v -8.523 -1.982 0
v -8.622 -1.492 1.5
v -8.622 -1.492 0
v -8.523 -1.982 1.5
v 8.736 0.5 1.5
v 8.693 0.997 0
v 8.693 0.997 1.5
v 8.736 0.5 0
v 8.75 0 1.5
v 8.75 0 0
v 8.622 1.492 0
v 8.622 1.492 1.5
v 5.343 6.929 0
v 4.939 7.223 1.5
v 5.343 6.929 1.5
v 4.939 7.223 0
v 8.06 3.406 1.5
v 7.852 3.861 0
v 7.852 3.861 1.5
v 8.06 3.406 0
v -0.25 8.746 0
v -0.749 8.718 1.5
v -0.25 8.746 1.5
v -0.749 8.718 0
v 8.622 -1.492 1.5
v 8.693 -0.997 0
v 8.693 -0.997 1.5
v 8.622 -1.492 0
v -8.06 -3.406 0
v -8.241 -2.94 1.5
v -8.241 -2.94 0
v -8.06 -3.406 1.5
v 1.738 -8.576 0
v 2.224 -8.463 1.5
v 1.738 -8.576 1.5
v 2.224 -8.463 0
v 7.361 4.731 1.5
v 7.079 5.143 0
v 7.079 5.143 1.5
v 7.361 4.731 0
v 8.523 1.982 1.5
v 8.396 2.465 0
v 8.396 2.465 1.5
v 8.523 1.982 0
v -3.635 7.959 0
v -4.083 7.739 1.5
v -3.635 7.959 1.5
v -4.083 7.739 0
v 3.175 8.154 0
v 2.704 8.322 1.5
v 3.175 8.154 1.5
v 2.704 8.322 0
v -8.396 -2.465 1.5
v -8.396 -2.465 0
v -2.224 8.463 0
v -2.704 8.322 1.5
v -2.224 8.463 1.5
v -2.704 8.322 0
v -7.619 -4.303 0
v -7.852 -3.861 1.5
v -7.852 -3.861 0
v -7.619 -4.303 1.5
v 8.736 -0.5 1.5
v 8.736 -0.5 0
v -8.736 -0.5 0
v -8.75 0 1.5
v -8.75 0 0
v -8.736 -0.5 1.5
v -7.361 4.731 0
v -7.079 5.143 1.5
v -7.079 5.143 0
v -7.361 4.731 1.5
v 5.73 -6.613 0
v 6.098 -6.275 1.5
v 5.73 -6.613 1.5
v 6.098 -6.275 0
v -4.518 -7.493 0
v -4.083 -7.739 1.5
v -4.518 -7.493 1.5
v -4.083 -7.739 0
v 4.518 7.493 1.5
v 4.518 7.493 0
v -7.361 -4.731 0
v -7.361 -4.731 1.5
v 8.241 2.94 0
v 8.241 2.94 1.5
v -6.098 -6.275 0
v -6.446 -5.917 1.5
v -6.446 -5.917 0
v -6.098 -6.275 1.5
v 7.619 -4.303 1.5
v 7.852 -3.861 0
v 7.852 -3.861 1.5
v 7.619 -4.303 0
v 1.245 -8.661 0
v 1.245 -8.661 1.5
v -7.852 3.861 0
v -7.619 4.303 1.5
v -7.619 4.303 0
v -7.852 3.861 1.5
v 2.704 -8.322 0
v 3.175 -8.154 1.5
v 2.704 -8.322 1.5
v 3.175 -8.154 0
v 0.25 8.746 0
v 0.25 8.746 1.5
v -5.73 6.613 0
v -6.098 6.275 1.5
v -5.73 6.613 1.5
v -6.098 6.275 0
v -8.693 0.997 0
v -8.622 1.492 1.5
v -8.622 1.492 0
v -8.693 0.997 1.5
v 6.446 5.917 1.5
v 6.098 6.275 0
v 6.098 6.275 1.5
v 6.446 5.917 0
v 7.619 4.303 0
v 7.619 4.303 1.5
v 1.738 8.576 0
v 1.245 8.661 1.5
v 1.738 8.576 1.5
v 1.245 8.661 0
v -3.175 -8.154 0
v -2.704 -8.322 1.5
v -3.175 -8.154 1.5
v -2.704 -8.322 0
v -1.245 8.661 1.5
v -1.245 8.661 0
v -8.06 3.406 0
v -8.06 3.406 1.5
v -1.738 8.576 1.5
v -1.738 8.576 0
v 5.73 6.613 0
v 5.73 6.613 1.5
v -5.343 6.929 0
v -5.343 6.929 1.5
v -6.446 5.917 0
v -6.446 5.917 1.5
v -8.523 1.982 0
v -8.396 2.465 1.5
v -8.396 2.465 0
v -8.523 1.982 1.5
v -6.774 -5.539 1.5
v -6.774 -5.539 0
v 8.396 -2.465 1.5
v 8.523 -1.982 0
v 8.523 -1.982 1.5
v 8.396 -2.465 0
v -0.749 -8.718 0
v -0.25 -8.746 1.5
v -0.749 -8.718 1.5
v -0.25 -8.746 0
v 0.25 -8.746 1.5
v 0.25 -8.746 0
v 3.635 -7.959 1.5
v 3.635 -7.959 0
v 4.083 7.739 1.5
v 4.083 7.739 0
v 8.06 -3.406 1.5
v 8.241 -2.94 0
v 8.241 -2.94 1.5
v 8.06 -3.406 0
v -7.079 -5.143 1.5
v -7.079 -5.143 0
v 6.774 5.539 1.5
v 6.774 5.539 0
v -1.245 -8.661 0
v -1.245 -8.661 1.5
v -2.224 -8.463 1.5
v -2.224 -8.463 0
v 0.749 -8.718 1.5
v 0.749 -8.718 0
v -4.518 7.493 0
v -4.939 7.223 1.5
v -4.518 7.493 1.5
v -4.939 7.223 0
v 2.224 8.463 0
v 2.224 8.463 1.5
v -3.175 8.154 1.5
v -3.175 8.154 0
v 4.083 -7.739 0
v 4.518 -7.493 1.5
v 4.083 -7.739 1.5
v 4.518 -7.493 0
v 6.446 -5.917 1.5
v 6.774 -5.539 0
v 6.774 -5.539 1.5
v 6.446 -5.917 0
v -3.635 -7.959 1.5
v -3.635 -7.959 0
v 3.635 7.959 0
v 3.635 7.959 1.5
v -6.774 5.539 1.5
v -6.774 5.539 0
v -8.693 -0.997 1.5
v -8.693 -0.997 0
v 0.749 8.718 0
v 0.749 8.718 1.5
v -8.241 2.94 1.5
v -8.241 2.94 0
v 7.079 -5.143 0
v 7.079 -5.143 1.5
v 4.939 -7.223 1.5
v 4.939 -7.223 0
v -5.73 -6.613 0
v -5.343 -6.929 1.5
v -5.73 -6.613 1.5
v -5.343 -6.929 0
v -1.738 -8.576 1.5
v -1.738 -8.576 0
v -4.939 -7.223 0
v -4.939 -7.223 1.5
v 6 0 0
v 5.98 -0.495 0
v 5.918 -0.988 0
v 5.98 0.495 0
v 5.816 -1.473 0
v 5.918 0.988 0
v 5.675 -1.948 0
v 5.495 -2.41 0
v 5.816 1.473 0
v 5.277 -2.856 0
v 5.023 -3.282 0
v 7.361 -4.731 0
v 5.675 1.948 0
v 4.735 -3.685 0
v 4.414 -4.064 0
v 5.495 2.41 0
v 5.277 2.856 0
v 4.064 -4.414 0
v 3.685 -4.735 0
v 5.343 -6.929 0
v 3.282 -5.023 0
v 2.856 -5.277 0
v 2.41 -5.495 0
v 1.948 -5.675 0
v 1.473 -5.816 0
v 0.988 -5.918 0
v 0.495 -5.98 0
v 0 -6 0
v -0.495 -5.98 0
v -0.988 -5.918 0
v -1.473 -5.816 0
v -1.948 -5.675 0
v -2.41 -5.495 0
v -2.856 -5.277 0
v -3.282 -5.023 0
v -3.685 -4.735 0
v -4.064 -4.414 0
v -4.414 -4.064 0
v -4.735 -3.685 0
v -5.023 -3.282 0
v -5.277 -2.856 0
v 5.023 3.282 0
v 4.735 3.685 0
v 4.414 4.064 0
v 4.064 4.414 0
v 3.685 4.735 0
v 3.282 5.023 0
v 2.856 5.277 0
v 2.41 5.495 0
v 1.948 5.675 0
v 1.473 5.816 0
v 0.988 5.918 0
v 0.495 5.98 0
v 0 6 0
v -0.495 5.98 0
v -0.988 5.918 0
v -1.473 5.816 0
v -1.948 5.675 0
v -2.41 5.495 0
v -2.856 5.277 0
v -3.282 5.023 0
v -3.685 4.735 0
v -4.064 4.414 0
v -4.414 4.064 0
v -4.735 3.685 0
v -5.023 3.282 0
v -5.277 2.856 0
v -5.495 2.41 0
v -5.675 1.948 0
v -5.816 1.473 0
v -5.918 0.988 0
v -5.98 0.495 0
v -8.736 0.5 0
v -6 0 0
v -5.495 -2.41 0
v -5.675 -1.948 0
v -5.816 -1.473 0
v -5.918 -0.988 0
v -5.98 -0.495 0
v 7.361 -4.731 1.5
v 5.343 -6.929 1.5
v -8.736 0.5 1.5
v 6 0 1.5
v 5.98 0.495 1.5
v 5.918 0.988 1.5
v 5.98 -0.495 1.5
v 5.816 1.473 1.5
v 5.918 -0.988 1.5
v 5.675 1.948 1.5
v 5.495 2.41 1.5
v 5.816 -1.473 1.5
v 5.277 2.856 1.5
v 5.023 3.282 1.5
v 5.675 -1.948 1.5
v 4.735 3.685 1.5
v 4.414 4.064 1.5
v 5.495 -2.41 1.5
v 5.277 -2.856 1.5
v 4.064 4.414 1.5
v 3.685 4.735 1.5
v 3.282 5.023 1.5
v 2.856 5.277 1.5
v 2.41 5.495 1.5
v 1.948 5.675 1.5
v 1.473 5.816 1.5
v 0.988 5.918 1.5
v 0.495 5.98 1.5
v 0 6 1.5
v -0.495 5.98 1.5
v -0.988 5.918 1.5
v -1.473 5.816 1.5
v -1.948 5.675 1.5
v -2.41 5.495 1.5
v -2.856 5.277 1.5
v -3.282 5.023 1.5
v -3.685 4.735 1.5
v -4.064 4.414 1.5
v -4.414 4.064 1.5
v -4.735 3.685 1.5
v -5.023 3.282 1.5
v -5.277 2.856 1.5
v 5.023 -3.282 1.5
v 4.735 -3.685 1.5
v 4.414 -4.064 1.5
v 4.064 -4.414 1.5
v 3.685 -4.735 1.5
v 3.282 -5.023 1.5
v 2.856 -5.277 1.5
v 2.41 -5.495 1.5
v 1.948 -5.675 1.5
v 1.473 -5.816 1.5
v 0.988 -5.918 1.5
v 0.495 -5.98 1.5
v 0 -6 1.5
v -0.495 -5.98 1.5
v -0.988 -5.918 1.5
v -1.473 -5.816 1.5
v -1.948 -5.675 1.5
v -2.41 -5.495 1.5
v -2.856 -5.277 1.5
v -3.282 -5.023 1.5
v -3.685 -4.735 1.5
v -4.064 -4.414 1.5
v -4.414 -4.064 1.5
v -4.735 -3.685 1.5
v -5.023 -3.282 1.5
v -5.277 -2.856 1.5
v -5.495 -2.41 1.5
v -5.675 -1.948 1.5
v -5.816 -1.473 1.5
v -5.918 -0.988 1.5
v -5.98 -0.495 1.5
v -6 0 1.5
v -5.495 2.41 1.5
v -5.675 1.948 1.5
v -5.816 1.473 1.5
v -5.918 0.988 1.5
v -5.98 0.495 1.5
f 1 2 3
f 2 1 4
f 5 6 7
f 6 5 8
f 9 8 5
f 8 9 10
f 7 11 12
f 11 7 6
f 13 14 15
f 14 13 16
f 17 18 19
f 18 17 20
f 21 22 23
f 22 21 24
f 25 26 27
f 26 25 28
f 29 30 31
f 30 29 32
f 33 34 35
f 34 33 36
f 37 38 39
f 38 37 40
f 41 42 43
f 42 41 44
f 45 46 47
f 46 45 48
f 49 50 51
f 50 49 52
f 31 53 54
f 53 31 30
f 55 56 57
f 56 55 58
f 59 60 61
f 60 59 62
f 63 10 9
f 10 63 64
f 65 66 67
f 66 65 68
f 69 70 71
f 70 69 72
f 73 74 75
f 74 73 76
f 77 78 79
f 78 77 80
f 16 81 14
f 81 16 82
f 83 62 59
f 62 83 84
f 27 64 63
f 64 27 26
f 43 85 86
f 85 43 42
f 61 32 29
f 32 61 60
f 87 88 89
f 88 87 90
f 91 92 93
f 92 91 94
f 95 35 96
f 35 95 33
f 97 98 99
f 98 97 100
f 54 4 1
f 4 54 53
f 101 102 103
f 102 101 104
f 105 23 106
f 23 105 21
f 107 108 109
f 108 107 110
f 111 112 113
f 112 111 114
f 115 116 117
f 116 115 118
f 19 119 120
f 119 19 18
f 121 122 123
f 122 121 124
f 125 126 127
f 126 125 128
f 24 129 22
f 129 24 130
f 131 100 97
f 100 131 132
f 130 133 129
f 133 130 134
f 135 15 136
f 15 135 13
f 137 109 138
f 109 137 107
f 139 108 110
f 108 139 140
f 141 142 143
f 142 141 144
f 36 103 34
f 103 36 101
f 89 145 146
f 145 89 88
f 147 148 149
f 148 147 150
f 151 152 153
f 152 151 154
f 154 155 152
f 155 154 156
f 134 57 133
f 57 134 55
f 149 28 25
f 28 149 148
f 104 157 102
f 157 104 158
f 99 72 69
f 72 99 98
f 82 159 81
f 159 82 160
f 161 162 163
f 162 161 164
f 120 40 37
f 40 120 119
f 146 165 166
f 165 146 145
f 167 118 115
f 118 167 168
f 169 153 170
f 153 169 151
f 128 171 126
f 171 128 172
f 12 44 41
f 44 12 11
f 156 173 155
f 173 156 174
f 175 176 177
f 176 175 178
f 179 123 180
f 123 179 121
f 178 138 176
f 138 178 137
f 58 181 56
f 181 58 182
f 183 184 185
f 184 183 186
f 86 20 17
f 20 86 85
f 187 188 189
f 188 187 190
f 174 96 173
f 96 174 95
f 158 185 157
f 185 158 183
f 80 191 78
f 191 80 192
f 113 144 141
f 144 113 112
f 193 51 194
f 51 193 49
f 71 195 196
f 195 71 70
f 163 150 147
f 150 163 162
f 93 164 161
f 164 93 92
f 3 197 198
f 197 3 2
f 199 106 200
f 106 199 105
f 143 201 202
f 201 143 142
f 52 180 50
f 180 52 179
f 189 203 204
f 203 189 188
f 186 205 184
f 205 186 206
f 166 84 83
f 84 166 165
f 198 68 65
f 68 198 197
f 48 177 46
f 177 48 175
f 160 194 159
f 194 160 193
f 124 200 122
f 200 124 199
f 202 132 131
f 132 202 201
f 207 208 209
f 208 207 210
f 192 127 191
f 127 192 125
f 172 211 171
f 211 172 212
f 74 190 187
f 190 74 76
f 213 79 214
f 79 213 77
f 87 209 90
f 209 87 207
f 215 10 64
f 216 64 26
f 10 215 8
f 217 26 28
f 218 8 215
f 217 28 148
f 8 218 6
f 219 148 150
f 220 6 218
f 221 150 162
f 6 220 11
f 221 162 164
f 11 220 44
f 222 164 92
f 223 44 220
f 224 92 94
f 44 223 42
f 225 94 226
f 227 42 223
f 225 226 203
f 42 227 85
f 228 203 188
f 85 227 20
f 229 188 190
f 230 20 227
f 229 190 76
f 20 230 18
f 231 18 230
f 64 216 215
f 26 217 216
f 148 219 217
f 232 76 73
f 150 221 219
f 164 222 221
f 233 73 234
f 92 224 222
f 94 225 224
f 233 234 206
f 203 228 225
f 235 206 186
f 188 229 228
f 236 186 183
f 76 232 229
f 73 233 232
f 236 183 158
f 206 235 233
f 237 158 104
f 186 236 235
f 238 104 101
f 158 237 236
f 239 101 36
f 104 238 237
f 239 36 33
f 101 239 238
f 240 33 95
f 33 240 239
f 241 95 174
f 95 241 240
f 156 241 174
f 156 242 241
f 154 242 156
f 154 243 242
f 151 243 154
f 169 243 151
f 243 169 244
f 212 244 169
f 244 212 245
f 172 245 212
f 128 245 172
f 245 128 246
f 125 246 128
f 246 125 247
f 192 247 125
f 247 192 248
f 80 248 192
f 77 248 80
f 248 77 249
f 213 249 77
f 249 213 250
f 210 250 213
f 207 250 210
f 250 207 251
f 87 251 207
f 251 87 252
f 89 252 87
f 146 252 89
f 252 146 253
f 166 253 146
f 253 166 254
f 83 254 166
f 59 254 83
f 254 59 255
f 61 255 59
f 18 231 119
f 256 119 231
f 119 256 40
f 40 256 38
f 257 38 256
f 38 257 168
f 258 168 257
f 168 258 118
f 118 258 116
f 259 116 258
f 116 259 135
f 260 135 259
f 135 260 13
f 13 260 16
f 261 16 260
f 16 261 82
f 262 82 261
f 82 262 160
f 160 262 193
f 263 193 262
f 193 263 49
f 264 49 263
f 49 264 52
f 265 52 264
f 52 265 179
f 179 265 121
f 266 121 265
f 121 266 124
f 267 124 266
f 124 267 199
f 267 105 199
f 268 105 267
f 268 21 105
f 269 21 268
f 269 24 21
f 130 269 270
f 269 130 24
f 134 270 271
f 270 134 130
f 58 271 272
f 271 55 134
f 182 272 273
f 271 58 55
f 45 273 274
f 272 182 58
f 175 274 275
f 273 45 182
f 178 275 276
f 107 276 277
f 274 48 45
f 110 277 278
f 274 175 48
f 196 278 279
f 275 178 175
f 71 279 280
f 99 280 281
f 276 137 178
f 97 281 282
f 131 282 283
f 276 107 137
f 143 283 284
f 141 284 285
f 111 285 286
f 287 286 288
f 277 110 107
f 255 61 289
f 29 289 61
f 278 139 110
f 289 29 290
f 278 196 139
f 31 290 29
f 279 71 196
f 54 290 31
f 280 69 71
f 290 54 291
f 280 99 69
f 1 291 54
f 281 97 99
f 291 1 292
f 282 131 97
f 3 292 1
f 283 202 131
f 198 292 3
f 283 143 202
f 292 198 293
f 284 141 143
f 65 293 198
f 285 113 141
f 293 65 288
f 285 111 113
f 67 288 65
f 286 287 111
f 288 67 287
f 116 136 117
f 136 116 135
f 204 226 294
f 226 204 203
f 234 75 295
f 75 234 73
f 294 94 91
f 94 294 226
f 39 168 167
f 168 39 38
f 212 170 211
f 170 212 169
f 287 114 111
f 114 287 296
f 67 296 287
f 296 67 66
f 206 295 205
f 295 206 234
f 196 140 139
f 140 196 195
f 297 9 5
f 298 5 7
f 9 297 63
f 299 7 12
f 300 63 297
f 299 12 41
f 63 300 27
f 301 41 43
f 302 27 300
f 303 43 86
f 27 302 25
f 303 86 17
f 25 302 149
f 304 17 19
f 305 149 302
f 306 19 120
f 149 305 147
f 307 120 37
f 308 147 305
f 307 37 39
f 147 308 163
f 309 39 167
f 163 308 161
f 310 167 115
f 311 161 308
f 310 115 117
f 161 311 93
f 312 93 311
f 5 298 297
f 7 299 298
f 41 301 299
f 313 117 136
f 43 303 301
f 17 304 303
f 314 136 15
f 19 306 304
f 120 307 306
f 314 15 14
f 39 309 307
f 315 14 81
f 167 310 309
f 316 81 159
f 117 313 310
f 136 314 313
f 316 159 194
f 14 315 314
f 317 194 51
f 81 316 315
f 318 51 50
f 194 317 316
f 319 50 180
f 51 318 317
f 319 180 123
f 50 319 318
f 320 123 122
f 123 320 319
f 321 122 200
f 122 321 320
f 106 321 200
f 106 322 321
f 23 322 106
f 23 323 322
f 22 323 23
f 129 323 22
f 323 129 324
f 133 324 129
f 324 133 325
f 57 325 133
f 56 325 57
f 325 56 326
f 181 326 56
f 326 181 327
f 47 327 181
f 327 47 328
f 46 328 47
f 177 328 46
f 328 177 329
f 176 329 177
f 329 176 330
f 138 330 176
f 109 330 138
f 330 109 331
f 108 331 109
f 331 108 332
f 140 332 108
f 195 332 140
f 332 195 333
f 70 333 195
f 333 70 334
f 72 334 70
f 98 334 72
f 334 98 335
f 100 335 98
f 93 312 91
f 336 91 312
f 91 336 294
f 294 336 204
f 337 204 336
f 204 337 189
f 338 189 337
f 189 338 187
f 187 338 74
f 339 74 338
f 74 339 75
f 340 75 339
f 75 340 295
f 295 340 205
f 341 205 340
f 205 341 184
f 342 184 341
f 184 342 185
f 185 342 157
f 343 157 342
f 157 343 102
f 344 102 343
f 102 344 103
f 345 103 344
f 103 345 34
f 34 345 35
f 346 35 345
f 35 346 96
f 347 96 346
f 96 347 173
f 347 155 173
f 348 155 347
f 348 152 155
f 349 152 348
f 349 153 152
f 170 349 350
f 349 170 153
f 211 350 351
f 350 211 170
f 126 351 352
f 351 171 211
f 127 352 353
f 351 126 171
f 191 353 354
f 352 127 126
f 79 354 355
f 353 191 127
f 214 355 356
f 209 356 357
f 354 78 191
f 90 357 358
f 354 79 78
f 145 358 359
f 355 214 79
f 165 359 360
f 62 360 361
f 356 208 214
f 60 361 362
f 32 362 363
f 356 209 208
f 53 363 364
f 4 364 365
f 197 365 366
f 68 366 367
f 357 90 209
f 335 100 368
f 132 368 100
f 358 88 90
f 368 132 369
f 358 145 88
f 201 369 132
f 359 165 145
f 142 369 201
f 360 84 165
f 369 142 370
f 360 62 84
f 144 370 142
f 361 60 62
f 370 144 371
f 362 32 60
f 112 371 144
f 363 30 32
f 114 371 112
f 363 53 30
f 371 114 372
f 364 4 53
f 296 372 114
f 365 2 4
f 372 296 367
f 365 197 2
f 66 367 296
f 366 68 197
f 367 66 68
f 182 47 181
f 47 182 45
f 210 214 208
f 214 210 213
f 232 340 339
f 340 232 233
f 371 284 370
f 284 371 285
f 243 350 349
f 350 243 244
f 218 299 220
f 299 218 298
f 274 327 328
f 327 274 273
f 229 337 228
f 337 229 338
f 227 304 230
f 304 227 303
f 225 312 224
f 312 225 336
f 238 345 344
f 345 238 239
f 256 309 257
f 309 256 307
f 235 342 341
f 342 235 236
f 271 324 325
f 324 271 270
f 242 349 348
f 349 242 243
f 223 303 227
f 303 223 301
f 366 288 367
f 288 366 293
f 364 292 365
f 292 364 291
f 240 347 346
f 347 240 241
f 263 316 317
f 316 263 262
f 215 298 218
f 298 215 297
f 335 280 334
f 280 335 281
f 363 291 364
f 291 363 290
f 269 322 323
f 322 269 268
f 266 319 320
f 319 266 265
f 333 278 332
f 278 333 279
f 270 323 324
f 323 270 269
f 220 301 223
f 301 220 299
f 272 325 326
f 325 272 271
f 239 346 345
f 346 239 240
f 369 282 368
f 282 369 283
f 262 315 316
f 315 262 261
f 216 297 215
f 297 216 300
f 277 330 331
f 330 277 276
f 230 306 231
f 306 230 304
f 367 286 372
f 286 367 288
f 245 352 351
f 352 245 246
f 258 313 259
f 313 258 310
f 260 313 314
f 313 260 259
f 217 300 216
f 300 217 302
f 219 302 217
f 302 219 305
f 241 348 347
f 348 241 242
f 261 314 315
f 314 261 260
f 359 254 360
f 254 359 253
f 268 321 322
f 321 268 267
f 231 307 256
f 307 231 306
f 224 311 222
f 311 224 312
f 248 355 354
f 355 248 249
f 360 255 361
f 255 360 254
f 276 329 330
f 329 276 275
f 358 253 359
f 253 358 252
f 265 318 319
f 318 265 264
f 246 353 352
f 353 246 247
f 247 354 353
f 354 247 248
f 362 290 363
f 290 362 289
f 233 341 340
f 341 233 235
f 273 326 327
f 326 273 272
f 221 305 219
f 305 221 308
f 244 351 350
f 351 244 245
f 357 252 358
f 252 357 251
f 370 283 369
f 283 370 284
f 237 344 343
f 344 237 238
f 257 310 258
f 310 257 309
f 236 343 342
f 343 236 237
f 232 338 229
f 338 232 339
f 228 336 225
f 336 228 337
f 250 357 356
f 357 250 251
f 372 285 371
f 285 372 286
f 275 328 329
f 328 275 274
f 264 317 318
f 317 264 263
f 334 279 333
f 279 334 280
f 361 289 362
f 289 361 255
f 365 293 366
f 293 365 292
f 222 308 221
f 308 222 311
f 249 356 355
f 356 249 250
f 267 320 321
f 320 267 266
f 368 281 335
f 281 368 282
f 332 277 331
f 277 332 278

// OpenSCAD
d_outer = 17.5;
d_inner = 12;
height = 1.5;

$fs = 0.5;
$fa = 0.5;
$e = 0.001;

difference() {
  cylinder(r = d_outer / 2, h = height);
  translate([ 0, 0, -$e ]) cylinder(r = d_inner / 2, h = height + 2 * $e);
}
